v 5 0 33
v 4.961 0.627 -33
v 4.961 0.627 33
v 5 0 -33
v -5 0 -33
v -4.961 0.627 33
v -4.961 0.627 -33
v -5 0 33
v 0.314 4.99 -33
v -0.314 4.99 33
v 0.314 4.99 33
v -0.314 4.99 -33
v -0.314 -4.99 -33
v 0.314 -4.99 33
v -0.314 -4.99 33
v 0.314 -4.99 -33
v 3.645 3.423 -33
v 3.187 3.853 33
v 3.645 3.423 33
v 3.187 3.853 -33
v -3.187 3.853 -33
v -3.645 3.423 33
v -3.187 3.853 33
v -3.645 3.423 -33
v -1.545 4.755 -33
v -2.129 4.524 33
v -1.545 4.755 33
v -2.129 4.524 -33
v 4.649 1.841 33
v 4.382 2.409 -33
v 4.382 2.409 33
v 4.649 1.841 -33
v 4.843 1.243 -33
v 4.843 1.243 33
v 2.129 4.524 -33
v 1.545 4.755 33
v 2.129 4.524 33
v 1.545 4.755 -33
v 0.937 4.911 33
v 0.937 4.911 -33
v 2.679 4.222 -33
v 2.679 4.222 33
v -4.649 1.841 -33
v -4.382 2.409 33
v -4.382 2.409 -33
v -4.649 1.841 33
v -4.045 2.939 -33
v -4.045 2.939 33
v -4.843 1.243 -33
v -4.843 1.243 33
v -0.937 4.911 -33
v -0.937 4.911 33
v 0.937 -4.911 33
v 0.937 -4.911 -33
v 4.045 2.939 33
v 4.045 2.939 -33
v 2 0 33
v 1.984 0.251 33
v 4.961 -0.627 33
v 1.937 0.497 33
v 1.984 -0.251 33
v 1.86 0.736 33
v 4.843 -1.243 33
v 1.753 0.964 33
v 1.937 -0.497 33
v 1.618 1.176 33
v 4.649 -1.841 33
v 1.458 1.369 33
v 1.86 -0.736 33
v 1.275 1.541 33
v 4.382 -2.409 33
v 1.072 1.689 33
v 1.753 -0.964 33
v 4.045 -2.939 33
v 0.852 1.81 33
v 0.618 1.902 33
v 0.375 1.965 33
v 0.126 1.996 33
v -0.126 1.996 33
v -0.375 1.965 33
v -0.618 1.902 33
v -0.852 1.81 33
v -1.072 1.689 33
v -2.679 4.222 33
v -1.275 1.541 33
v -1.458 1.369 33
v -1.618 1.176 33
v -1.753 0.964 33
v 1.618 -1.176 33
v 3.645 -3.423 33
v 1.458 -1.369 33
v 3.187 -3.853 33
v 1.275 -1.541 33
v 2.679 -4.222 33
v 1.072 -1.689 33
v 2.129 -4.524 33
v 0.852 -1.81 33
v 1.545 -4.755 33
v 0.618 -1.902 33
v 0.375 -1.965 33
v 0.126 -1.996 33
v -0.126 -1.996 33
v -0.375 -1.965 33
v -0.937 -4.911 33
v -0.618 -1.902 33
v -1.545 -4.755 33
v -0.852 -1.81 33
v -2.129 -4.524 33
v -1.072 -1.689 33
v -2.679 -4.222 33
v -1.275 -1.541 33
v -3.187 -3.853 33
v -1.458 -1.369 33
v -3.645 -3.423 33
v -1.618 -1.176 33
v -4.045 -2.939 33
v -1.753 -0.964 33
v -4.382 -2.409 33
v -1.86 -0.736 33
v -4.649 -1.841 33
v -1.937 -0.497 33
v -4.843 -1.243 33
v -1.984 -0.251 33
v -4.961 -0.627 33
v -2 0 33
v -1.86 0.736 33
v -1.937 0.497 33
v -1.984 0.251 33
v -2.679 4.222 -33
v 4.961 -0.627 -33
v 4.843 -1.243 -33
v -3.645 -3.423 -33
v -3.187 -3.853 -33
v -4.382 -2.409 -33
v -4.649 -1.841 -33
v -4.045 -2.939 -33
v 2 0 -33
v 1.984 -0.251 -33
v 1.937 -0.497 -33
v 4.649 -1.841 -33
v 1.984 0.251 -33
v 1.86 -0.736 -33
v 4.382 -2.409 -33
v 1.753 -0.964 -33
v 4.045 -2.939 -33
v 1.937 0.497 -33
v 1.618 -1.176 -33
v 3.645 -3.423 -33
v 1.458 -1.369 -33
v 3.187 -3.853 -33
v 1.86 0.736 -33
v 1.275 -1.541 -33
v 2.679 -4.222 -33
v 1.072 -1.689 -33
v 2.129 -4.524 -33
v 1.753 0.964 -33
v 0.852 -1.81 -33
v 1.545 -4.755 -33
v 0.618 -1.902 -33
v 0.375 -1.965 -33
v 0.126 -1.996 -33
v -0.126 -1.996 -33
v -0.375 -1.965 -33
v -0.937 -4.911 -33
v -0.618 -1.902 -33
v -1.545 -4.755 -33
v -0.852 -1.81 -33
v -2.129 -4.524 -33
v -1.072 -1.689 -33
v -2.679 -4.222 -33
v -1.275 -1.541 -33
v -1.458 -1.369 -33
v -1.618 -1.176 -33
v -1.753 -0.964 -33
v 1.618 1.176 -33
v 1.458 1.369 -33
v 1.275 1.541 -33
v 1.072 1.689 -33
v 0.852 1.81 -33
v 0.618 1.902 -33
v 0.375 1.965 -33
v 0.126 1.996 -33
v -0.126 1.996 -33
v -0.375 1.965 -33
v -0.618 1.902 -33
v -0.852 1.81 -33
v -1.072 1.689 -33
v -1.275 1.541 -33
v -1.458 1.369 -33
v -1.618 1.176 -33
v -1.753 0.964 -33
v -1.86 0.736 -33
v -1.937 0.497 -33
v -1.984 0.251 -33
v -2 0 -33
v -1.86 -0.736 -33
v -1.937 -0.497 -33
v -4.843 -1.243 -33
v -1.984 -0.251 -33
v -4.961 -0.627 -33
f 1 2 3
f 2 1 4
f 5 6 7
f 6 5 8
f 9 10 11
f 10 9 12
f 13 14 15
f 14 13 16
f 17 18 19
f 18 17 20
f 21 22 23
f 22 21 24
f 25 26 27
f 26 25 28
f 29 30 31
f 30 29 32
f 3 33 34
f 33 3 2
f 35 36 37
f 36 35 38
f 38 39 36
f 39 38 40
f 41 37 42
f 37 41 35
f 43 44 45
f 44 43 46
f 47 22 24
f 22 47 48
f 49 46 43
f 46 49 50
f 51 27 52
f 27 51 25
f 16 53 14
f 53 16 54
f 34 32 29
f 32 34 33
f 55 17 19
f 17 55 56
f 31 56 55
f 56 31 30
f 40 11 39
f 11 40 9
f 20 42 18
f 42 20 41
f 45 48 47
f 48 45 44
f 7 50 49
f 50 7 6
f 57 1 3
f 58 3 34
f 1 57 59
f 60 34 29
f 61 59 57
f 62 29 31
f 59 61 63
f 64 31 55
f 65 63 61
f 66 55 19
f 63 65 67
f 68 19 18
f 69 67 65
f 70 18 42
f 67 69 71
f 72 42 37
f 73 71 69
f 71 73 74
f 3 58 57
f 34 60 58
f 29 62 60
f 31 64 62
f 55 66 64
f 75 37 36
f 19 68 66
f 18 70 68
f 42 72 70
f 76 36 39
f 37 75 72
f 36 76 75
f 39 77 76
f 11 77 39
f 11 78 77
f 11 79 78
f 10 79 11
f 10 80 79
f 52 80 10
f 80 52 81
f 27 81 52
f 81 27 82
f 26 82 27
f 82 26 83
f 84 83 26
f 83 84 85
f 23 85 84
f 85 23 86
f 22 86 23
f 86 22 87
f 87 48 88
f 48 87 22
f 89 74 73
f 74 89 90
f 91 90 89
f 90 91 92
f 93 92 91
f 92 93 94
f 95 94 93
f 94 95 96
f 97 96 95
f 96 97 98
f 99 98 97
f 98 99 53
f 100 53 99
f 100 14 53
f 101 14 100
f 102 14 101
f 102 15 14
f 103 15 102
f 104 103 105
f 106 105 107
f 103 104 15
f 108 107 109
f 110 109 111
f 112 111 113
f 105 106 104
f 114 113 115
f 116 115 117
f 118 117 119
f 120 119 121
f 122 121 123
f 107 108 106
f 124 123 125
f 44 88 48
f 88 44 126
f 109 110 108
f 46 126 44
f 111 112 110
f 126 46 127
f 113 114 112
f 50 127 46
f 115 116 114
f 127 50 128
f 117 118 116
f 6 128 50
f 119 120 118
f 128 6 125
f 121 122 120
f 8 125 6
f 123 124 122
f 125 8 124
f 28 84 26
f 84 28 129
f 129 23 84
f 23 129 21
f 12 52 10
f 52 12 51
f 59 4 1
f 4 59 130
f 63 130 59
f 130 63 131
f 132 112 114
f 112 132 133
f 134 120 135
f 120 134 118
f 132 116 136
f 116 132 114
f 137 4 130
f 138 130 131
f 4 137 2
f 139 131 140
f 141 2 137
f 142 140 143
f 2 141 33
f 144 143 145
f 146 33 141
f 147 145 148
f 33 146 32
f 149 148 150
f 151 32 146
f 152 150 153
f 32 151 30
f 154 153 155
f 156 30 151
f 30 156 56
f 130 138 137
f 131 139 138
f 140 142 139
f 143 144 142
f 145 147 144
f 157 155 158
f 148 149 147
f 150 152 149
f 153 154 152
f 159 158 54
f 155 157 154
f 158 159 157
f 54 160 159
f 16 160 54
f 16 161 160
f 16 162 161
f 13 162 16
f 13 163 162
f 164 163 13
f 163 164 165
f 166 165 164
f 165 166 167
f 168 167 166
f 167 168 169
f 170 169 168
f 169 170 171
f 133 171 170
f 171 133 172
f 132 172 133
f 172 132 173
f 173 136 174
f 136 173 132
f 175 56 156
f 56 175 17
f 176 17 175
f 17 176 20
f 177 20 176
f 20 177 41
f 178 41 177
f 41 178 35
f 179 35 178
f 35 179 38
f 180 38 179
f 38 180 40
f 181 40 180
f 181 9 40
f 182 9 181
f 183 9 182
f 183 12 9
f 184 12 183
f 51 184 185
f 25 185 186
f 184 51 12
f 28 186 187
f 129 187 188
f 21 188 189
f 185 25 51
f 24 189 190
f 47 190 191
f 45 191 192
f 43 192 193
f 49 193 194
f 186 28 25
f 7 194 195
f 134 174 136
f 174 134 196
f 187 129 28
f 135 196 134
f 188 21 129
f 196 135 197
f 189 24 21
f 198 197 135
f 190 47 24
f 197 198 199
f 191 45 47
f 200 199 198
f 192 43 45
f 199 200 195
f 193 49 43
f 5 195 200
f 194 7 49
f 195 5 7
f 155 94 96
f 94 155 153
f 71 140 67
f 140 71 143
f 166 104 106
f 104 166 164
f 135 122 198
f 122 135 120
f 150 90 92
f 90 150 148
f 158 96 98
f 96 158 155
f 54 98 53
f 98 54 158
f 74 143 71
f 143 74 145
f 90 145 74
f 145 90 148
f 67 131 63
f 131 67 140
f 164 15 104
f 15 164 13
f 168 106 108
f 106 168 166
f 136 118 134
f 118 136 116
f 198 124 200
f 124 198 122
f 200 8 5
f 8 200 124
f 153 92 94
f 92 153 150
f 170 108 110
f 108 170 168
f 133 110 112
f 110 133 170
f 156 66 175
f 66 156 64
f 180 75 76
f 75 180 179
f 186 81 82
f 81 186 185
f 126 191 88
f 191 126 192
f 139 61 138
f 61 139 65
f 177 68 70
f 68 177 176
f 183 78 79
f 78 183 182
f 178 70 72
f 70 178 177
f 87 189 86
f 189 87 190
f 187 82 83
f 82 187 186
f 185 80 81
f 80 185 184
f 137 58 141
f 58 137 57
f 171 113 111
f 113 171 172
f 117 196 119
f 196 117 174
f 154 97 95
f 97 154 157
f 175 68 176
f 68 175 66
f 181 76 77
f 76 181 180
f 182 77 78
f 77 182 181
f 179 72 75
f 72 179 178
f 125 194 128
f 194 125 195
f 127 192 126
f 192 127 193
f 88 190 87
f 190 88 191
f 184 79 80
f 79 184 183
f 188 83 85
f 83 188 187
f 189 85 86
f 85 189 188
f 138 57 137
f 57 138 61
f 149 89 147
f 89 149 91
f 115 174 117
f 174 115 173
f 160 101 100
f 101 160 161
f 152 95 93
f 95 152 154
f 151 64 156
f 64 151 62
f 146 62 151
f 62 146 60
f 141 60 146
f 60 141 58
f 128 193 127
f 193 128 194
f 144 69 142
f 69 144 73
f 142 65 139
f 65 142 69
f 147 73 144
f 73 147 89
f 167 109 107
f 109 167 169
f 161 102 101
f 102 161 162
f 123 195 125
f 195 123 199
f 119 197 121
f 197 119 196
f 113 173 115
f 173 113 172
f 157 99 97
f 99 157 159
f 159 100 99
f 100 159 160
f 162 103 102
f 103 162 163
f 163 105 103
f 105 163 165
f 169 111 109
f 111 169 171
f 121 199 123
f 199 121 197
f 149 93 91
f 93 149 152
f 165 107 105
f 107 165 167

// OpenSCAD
$fn = 50;


difference() {
	union() {
		translate(v = [0, 0, -33.0000000000]) {
			cylinder(h = 66, r = 5.0000000000);
		}
	}
	union() {
		translate(v = [0, 0, -100.0000000000]) {
			cylinder(h = 200, r = 2);
		}
	}
}
